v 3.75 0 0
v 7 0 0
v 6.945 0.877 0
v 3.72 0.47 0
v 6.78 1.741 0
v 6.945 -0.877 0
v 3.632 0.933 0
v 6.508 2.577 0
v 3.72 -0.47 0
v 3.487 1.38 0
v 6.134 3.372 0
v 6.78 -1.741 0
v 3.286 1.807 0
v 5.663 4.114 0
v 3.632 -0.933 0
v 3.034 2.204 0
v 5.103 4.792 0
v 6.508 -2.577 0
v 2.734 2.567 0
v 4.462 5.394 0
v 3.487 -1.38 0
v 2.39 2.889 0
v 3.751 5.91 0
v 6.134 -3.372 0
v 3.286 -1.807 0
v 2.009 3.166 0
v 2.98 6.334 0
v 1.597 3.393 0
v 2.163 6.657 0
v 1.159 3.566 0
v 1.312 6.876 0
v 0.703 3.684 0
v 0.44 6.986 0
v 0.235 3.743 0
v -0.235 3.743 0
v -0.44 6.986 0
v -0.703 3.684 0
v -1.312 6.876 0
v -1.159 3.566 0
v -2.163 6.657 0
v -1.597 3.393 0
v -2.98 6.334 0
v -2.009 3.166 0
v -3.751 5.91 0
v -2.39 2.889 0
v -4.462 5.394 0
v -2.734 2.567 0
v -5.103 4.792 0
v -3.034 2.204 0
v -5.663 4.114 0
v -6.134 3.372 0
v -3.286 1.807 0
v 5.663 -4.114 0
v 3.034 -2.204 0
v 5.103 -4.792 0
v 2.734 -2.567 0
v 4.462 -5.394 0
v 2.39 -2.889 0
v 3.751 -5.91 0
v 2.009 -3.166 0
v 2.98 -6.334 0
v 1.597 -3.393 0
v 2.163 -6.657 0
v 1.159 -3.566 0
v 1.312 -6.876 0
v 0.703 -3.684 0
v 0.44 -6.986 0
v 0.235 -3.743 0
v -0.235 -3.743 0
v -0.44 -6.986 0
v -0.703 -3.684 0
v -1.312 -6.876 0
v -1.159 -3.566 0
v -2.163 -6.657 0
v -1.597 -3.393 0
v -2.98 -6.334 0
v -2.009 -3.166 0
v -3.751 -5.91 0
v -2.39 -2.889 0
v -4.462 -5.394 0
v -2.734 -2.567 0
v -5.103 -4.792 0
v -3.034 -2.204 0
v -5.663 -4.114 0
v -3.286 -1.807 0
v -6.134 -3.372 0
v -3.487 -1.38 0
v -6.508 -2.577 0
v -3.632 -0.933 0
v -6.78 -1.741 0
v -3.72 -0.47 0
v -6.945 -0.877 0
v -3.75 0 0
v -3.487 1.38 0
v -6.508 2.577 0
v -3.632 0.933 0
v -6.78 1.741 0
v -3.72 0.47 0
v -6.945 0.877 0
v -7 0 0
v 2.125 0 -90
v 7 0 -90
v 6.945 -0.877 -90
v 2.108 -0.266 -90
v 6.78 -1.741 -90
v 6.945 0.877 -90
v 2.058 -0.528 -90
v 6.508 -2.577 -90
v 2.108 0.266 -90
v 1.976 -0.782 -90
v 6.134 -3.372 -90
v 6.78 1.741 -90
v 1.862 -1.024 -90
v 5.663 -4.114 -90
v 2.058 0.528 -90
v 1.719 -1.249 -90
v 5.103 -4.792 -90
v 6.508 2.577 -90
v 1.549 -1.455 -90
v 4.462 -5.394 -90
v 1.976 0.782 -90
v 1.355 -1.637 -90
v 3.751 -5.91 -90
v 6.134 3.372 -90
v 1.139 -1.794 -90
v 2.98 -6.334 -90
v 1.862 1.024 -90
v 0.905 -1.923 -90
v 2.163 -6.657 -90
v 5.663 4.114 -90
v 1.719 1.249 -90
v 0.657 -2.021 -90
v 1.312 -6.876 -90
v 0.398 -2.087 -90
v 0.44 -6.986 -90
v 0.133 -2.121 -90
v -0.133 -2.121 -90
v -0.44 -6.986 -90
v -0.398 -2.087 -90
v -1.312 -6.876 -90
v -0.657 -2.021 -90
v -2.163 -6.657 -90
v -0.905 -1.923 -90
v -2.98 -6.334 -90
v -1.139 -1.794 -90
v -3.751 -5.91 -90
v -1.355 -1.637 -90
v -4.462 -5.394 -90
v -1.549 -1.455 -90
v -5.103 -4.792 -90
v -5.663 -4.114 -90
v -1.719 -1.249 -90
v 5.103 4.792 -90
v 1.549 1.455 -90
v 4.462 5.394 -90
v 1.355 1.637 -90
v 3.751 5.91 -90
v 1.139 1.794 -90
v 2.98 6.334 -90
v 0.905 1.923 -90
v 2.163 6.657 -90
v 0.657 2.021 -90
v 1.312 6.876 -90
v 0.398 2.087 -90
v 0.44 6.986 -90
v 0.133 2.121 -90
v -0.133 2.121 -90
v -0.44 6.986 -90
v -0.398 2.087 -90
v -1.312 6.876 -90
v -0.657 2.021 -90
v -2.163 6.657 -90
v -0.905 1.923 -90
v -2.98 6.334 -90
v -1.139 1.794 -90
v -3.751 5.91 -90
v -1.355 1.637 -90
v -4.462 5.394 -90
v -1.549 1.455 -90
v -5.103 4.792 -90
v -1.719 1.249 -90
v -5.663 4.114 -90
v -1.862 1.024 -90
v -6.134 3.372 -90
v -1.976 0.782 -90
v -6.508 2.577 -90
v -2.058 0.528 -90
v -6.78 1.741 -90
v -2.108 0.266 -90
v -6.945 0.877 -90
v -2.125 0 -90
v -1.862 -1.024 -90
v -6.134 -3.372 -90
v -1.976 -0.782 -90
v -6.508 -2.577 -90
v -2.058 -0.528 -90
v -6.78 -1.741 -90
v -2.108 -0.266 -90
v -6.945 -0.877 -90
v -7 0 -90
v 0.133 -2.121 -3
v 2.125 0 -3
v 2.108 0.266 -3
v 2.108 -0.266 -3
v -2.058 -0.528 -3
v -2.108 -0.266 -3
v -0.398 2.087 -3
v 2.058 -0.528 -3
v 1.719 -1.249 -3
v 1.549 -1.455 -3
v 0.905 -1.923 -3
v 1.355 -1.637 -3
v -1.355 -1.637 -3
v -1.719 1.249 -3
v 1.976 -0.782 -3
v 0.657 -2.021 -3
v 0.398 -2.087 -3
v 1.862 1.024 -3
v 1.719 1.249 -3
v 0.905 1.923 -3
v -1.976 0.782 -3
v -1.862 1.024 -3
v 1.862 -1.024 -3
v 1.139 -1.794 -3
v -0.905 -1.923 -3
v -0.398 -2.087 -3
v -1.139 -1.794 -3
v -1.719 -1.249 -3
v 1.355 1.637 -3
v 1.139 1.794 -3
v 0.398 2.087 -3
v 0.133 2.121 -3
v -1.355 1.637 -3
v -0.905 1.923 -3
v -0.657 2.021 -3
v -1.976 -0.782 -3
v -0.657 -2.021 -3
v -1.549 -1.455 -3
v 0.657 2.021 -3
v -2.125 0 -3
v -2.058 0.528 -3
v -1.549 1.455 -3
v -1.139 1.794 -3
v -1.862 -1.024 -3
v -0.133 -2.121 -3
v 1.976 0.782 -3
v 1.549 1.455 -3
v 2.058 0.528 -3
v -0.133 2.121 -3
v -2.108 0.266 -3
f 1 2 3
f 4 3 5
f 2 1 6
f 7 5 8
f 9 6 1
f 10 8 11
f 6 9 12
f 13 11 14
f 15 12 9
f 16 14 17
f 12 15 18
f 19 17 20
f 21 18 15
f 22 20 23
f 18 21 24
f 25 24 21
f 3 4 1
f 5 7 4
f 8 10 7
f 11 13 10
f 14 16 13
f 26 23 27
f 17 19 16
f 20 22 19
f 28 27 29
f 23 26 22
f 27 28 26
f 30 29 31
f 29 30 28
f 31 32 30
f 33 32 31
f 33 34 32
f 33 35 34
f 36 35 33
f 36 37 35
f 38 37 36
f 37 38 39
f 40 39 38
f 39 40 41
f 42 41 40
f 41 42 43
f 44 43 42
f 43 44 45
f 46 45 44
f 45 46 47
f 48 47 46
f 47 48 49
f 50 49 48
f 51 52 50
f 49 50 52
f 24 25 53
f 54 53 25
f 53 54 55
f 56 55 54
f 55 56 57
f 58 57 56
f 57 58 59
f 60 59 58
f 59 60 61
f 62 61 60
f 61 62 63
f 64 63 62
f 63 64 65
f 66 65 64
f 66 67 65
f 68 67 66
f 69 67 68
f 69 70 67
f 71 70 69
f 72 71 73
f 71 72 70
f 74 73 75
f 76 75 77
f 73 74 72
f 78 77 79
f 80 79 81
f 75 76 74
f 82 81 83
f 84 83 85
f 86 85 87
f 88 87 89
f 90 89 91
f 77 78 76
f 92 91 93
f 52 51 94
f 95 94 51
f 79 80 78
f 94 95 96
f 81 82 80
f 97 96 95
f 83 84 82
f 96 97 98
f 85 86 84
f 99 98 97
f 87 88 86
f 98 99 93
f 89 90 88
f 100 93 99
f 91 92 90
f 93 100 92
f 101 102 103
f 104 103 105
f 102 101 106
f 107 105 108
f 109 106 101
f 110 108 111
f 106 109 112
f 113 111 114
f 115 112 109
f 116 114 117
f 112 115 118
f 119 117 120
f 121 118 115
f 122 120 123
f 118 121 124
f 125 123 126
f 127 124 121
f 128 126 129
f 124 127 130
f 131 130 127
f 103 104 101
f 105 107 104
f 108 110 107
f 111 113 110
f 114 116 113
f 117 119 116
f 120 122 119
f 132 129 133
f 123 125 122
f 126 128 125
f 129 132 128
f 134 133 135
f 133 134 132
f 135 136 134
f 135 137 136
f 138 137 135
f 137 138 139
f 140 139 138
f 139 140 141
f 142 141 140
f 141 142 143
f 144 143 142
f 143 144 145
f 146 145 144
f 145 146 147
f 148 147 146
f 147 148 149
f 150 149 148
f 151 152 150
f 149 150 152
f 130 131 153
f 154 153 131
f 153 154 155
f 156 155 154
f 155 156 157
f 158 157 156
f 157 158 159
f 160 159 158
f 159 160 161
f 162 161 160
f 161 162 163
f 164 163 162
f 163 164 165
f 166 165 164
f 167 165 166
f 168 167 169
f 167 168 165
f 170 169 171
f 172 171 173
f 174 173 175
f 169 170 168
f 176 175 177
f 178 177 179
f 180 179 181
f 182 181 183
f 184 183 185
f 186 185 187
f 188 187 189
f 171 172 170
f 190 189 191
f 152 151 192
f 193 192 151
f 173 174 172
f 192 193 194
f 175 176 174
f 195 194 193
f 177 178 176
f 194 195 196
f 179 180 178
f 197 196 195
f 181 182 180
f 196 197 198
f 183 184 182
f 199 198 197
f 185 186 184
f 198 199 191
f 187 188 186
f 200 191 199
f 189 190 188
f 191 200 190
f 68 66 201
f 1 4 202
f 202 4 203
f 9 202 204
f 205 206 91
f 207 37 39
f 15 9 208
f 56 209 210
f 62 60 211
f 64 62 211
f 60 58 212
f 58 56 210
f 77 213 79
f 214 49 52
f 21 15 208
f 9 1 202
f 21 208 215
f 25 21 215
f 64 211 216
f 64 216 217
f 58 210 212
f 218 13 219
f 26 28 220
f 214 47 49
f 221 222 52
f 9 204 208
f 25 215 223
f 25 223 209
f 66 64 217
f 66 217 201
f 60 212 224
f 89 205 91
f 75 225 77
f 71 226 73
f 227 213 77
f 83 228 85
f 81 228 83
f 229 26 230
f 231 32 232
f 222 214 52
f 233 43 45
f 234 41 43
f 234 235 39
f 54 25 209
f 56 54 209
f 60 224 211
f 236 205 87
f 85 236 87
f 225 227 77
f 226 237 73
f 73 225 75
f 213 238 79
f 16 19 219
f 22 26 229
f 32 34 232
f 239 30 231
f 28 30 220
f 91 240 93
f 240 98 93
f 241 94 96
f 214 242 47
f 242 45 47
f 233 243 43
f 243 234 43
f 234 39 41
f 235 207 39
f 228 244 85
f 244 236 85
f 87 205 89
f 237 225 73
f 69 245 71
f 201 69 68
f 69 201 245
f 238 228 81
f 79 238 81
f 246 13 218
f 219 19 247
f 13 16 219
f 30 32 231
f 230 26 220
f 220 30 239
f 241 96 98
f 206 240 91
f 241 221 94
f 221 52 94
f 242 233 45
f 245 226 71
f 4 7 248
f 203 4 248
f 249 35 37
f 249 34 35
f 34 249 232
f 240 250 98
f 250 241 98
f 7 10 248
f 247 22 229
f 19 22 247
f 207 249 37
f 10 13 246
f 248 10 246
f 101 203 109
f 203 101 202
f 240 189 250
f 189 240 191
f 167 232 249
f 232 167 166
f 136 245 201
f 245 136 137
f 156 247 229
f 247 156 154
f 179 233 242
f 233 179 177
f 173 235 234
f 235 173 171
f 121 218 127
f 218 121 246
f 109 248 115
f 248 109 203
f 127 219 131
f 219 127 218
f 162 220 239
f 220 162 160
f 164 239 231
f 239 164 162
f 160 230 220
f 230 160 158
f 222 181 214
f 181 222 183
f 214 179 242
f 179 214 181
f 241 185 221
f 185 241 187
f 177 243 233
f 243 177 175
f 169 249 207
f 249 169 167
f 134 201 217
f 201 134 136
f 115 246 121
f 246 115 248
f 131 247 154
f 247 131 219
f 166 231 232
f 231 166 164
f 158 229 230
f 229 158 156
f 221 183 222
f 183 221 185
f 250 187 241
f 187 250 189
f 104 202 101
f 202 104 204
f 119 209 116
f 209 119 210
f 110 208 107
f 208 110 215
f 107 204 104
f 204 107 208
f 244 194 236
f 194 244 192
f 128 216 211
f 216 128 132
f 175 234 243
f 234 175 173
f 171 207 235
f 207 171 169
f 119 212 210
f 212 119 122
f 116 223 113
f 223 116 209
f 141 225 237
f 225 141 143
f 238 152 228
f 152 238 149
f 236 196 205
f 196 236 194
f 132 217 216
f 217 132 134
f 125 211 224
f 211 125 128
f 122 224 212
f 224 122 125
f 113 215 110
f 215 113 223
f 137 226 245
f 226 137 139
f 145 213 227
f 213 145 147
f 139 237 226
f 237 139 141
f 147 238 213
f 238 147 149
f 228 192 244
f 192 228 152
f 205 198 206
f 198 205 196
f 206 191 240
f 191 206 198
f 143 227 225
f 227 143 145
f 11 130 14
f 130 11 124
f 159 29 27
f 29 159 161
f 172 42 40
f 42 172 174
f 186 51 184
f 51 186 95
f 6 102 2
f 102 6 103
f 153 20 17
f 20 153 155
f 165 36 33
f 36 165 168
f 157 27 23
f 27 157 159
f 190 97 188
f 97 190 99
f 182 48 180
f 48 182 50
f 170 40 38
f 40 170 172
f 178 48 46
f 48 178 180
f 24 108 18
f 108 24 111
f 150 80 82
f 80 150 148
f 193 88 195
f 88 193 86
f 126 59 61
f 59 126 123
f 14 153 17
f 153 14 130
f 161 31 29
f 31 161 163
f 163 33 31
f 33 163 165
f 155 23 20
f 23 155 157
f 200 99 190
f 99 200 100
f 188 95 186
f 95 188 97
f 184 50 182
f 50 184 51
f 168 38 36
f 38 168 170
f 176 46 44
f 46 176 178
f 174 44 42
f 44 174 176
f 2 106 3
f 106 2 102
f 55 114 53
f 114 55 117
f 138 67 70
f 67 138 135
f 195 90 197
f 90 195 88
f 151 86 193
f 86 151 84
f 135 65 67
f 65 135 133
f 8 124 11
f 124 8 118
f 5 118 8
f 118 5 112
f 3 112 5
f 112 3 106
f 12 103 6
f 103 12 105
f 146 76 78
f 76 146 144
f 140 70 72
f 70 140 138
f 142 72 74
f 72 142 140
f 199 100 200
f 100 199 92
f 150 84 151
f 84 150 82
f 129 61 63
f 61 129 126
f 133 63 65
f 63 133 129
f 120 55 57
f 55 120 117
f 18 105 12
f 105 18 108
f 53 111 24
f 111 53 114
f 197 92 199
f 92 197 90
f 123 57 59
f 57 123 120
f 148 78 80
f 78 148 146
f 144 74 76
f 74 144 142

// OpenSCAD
$fn = 50;


difference() {
	union() {
		translate(v = [0, 0, -90.0000000000]) {
			cylinder(h = 90, r = 7.0000000000);
		}
		cylinder(h = 0, r = 13.0000000000);
	}
	union() {
		translate(v = [0, 0, 0]) {
			rotate(a = [0, 0, 0]) {
				difference() {
					union() {
						#translate(v = [0, 0, -90.0000000000]) {
							cylinder(h = 90, r = 2.0000000000);
						}
						#translate(v = [0, 0, -3]) {
							cylinder(h = 3, r1 = 2.1250000000, r2 = 3.7500000000);
						}
						#translate(v = [0, 0, -90.0000000000]) {
							cylinder(h = 90, r = 2.1250000000);
						}
						#translate(v = [0, 0, -90.0000000000]) {
							cylinder(h = 90, r = 2.0000000000);
						}
					}
					union();
				}
			}
		}
	}
}
